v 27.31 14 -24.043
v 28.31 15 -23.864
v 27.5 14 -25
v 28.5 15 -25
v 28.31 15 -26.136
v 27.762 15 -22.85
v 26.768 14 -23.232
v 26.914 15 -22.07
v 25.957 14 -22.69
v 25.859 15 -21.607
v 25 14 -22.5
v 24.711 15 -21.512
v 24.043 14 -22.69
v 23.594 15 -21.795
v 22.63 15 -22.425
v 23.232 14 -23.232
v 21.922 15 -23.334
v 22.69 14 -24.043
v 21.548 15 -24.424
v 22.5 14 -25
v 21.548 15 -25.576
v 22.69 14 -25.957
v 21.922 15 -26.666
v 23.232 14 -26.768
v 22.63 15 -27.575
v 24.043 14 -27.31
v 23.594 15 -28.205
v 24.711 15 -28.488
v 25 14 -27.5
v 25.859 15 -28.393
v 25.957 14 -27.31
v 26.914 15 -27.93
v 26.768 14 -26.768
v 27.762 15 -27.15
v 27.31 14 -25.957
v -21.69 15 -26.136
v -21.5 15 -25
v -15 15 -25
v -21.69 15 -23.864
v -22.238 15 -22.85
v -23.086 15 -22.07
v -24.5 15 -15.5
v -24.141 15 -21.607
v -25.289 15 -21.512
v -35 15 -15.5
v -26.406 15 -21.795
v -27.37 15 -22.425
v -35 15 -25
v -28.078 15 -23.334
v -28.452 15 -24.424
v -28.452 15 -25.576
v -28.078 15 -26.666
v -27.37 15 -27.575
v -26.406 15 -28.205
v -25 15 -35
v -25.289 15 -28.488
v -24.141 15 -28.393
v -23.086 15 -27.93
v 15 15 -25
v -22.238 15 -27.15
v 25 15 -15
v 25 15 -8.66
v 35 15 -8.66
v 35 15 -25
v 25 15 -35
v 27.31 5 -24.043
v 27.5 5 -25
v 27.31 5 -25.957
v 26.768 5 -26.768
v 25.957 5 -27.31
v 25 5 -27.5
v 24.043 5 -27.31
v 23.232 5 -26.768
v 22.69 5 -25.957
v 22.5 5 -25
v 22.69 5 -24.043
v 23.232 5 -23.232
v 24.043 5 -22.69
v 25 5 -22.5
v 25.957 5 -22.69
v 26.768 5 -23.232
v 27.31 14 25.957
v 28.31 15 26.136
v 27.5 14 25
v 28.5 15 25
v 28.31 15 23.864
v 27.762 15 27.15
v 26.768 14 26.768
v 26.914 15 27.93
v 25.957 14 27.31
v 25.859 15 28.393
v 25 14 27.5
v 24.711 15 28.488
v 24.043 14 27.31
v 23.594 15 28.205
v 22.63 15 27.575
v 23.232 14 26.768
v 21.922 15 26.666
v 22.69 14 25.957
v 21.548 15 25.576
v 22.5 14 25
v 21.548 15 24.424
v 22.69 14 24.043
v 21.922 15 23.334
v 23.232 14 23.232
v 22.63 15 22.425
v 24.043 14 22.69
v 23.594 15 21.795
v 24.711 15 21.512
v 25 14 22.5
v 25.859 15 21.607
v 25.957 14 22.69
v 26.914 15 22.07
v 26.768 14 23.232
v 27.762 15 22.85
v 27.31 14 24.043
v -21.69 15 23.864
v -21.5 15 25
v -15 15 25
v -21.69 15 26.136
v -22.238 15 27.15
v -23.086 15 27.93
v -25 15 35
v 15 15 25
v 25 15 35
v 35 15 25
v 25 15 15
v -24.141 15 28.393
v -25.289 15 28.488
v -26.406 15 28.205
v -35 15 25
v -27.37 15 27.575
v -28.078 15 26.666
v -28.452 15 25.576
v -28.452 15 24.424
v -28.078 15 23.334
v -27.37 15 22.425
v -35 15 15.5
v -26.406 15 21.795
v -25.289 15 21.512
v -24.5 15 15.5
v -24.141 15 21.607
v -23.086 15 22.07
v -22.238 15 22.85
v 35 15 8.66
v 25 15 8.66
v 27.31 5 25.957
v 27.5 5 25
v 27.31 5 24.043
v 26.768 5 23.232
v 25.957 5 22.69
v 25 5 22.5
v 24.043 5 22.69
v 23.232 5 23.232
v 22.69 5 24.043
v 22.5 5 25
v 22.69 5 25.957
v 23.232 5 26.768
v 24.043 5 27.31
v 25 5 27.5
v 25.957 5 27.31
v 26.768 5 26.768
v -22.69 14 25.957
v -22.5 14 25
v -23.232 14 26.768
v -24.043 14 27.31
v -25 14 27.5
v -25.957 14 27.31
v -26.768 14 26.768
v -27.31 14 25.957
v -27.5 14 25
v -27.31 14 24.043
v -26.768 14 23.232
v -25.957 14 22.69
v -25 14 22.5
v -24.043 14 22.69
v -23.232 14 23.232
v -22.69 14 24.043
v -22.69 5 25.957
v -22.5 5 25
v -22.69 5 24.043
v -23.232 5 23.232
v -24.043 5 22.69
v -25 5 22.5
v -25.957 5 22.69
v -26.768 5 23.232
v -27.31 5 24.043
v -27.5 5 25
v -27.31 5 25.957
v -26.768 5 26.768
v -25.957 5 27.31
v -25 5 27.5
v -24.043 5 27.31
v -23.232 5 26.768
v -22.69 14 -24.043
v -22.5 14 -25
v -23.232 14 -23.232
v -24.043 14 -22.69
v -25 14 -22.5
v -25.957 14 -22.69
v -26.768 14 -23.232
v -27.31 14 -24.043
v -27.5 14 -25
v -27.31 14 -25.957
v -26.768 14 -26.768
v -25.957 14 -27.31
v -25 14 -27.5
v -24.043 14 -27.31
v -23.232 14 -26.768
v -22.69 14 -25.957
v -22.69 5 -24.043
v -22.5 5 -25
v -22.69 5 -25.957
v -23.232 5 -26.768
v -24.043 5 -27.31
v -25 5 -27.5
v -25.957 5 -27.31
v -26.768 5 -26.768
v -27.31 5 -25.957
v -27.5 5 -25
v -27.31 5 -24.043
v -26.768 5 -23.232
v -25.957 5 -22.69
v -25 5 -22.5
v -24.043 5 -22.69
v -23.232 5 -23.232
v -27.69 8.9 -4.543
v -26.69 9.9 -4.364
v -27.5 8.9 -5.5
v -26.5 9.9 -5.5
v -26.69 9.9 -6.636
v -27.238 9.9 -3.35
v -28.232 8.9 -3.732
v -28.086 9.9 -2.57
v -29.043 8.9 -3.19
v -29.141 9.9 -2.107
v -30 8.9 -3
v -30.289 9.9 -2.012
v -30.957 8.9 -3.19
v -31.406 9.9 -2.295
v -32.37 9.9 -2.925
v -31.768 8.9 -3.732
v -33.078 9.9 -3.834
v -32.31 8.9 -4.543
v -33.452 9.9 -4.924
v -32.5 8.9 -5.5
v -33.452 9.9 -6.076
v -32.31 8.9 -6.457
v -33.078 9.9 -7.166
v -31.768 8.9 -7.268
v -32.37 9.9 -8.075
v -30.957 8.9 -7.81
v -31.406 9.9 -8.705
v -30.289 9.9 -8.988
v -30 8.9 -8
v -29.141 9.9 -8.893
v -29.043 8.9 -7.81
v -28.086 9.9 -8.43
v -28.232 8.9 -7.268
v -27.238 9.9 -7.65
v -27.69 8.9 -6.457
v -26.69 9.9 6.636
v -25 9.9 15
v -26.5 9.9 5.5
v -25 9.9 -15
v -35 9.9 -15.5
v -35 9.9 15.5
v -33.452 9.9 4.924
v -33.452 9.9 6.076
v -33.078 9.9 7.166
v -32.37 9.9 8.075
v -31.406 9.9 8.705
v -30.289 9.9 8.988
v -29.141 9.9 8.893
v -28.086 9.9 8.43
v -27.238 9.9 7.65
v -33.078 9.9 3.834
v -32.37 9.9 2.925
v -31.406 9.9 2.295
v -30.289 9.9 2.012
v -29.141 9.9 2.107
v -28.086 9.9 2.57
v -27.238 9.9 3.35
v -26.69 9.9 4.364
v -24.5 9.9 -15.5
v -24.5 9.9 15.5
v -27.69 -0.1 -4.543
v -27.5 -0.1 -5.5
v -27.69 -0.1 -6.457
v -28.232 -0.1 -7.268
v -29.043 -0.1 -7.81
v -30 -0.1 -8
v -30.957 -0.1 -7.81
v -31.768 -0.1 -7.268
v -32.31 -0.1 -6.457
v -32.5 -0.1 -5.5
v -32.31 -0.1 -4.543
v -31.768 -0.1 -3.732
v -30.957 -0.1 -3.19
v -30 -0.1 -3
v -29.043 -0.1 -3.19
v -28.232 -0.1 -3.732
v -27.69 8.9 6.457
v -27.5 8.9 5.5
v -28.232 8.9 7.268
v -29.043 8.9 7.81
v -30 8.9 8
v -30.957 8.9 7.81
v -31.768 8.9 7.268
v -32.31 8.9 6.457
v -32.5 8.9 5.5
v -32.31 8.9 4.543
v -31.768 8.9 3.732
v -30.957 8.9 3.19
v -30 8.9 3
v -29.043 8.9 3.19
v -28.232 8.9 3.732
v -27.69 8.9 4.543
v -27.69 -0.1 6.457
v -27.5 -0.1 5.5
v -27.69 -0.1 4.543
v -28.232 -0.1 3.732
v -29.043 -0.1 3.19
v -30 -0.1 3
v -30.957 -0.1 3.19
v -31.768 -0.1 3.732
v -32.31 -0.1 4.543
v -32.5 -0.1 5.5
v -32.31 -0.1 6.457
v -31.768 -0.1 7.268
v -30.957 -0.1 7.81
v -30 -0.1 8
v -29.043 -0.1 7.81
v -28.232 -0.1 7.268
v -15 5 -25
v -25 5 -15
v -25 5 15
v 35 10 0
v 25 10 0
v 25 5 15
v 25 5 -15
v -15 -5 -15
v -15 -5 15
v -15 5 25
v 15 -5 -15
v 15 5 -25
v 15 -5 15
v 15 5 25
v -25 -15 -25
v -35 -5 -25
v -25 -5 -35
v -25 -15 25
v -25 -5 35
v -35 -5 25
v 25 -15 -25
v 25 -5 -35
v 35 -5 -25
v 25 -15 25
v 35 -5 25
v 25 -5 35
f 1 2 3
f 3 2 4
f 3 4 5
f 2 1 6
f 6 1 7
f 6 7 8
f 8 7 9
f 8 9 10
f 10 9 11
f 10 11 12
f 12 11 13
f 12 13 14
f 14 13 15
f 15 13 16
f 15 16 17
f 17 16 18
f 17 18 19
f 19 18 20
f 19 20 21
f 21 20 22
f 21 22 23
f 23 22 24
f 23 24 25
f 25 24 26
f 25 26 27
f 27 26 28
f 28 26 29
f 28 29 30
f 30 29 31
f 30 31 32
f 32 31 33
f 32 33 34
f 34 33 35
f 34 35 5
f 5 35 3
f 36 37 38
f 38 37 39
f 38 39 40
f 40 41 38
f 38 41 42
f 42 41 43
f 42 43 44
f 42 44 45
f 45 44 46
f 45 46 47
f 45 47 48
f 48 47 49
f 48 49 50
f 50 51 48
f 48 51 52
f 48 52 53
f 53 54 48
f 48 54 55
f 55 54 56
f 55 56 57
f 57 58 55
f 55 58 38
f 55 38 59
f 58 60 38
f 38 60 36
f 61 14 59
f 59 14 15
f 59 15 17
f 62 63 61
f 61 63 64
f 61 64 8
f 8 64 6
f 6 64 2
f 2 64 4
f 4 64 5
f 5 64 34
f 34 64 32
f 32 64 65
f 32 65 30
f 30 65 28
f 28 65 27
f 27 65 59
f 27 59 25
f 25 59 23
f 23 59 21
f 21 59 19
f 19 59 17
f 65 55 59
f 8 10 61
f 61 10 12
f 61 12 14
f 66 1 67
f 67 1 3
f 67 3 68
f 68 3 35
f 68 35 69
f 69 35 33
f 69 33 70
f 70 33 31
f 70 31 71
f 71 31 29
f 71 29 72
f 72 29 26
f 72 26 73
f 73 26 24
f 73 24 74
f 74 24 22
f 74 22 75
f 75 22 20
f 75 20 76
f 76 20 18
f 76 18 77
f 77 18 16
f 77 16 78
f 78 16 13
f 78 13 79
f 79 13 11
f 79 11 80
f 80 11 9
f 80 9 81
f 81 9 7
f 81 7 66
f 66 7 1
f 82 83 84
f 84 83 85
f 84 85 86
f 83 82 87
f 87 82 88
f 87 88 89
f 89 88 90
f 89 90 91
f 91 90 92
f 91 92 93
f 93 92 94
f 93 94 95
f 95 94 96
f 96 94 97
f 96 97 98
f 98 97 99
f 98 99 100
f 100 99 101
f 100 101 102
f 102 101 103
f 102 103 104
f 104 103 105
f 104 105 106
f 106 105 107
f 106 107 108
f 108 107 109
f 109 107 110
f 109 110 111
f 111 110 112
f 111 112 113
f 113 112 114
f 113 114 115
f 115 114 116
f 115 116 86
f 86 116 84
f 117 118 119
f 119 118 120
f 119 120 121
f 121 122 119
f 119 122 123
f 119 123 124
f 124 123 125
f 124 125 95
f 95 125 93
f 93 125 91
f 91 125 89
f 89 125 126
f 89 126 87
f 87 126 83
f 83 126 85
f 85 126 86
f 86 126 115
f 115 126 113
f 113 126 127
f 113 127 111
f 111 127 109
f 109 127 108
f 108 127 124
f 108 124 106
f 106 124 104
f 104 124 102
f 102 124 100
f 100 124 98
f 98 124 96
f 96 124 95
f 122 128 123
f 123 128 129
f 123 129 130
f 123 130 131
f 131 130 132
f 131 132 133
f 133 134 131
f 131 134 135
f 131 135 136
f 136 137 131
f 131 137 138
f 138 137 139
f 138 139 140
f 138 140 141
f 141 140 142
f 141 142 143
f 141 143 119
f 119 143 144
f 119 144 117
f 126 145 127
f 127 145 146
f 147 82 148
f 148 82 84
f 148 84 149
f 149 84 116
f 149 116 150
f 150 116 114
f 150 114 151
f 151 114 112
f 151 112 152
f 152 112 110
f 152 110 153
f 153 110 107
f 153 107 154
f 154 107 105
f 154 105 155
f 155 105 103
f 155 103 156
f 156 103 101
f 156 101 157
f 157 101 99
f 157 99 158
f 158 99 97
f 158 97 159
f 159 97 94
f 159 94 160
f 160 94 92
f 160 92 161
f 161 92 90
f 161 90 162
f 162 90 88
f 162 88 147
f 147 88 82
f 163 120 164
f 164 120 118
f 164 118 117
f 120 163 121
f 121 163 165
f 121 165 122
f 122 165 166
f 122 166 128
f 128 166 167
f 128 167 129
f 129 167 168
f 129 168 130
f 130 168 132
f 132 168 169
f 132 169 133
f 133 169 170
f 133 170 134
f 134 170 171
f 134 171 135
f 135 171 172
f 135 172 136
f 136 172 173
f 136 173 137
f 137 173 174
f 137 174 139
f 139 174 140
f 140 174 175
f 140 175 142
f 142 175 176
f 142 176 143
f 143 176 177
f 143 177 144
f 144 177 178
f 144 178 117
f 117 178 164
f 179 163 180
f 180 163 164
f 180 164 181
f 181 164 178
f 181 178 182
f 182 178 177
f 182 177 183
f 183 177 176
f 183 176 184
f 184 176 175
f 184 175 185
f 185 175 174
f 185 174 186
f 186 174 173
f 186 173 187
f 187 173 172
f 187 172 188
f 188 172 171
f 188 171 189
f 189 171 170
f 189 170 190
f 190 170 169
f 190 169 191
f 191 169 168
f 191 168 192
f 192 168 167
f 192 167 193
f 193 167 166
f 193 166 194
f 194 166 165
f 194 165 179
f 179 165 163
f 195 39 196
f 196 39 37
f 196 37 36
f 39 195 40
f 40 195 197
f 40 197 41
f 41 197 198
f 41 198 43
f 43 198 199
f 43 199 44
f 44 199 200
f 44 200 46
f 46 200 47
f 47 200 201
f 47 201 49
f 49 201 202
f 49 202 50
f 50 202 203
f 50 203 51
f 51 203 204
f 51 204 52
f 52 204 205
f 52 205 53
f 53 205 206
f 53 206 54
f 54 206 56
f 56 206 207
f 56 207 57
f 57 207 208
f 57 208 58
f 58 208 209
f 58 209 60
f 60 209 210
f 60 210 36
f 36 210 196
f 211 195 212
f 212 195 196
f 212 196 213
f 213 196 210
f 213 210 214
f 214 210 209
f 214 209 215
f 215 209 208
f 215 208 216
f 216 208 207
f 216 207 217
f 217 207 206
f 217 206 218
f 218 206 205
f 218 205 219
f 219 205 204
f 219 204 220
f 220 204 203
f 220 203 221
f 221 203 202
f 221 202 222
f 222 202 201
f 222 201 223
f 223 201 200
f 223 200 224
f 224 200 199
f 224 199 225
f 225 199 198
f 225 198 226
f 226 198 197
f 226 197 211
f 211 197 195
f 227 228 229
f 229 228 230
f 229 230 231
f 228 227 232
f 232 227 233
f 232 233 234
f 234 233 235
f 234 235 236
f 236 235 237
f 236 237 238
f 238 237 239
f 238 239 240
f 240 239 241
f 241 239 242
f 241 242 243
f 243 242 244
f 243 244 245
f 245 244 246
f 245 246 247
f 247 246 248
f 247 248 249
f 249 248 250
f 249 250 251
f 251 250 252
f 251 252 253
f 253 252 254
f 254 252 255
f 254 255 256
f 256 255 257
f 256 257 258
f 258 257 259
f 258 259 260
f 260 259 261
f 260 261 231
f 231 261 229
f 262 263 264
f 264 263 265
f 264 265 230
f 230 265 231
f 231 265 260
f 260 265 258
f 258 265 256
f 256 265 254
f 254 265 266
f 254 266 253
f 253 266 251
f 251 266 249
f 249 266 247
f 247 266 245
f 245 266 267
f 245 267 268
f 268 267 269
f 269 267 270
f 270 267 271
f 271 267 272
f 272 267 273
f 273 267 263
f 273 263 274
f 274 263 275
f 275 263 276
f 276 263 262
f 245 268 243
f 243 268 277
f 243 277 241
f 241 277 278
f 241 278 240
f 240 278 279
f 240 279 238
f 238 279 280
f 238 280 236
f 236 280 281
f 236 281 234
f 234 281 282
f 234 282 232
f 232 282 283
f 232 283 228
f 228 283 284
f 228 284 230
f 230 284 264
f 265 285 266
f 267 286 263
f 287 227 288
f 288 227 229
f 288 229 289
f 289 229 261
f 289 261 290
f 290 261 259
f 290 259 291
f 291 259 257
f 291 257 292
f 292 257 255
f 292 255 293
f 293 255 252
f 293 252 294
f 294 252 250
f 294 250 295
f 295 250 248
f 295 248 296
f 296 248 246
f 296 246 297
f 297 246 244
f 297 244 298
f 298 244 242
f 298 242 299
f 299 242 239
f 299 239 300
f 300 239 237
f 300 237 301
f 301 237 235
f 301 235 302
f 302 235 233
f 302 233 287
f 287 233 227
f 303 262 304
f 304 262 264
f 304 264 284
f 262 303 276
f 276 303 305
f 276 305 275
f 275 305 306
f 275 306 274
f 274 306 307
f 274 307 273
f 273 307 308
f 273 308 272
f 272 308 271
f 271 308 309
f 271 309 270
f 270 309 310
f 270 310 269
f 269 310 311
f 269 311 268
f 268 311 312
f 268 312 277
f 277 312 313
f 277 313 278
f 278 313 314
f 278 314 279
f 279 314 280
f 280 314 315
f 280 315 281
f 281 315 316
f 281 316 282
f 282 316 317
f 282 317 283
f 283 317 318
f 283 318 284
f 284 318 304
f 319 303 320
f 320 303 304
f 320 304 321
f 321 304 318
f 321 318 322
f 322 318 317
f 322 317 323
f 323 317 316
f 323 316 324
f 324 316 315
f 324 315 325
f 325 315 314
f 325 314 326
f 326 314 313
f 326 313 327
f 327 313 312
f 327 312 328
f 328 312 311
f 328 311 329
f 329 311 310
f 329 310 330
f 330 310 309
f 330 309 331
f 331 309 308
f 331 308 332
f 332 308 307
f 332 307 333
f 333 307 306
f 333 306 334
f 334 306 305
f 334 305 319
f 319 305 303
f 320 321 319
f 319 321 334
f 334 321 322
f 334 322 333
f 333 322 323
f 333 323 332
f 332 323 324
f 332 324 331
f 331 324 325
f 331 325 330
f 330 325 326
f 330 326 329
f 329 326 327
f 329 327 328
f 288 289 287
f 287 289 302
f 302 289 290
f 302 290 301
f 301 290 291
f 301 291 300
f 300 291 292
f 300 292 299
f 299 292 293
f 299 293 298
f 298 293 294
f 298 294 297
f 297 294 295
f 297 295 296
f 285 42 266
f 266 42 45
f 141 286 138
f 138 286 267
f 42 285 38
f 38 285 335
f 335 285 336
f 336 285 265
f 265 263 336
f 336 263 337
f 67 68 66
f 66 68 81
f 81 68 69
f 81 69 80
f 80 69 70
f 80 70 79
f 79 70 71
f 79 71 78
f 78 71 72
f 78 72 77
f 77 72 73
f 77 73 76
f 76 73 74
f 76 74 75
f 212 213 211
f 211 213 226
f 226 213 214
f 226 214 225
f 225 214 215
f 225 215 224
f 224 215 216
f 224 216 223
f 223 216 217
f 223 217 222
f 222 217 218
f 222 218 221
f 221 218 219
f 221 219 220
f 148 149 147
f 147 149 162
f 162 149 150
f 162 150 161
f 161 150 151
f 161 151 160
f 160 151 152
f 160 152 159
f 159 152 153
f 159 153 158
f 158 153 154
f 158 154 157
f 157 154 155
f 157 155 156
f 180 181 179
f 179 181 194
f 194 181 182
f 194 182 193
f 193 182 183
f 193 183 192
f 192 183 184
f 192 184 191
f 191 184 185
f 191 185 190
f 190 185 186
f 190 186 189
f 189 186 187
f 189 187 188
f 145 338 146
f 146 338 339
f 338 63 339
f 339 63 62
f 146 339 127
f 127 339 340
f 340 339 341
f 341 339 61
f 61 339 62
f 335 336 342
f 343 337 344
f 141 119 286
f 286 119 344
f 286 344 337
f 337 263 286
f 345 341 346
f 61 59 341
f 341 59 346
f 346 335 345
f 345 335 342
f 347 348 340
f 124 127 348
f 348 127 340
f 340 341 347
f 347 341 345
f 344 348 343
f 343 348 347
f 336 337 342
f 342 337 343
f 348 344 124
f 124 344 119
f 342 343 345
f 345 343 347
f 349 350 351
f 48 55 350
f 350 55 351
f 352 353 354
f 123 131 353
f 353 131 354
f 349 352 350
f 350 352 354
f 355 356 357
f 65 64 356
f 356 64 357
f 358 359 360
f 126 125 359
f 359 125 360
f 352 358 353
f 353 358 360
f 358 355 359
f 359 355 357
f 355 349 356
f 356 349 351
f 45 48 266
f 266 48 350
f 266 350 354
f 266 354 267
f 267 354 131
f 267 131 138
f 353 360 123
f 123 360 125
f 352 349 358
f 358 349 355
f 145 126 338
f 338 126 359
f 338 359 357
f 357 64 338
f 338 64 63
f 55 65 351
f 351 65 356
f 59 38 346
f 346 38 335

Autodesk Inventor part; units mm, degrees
ref_plane "YZ Plane" through (0, 0, 0) normal (1, 0, 0) x (0, 1, 0)
ref_plane "XZ Plane" through (0, 0, 0) normal (0, 1, 0) x (-1, 0, 0)
ref_plane "XY Plane" through (0, 0, 0) normal (0, 0, 1) x (1, 0, 0)
sketch "Sketch2" plane through (0, 0, 0) normal (0, 1, 0) x (-1, 0, 0)
  line L0 (25, -25) -> (-25, -25)
  line L1 (-25, -25) -> (-25, 25)
  line L2 (-25, 25) -> (25, 25)
  line L3 (25, 25) -> (25, -25)
  line L4 (25, -25) -> (-25, 25) construction
  line L5 (-25, -25) -> (25, 25) construction
  line L6 (35, 35) -> (-35, 35)
  line L7 (-35, 35) -> (-35, -35)
  line L8 (-35, -35) -> (35, -35)
  line L9 (35, -35) -> (35, 35)
  point P0 (0, 0)
  dimension "d0" = 50
  dimension "d1" = 10
  dimension "d19" = 50
extrude "Extrusion1" add sketch "Sketch2" along normal mid plane 30
sketch "Sketch3" plane through (0, -15, 0) normal (0, -1, 0) x (1, 0, 0)
  line L0 (35, -35) -> (35, 35) projected
  line L1 (35, 35) -> (-35, 35) projected
  line L2 (-35, 35) -> (-35, -35) projected
  line L3 (-35, -35) -> (35, -35) projected
  point P0 (0, 0)
extrude "Extrusion2" add sketch "Sketch3" against normal blind 10
chamfer "Chamfer1" distance 10 angle 45 16 edges at (35, 0, 35) (25, 5, 25) (-25, 5, 25) (-35, 0, 35) (-25, 5, -25) (25, 5, -25) (-35, 0, -35) (35, 0, -35) (0, -5, -25) (25, -5, 0) (0, -5, 25) (-25, -5, 0) (0, -15, -35) (35, -15, 0) (0, -15, 35) (-35, -15, 0)
sketch "Sketch4" plane through (35, -5, -25) normal (1, 0, 0) x (0, 0, -1)
  line L0 (0, 20) -> (0, 0) construction
  line L1 (-50, 20) -> (0, 20) construction
  line L2 (-16.3397, 30) -> (-16.3397, 20)
  line L3 (-16.3397, 20) -> (-25, 15)
  line L4 (-25, 15) -> (-33.6603, 20)
  line L5 (-33.6603, 20) -> (-33.6603, 30)
  line L6 (-33.6603, 30) -> (-25, 35)
  line L7 (-25, 35) -> (-16.3397, 30)
  point P0 (-25, 5)
  point P1 (-25, 25)
  dimension "d9" = 10
  dimension "d10" = 5
  dimension "d20" = 0
extrude "Extrusion3" cut sketch "Sketch4" against normal blind 10
sketch "Sketch5" plane through (0, 15, 0) normal (0, 1, 0) x (1, 0, 0)
  line L0 (-25, 25) -> (-25, 35) construction
  circle A0 centre (-25, 25) radius 2.5
  line L1 (25, 25) -> (35, 25) construction
  circle A1 centre (25, 25) radius 2.5
  line L2 (-25, -25) -> (-35, -25) construction
  circle A2 centre (-25, -25) radius 2.5
  line L3 (-25, -25) -> (25, -25) construction
  circle A3 centre (25, -25) radius 2.5
  point P0 (0, 0)
  dimension "d13" = 5
  dimension "d14" = 5
  dimension "d15" = 5
  dimension "d16" = 5
extrude "Extrusion4" cut sketch "Sketch5" against normal blind 10
sketch "Sketch6" plane through (-35, -5, -25) normal (-1, 0, 0) x (0, 0, 1)
  line L0 (0, 20) -> (50, 20) construction
  line L1 (9.5, 14.9) -> (40.5, 14.9)
  line L2 (40.5, 14.9) -> (40.5, 20)
  line L3 (40.5, 20) -> (9.5, 20)
  line L4 (9.5, 20) -> (9.5, 14.9)
  point P0 (25, 5)
  point P1 (25, 20)
  dimension "d21" = 31
  dimension "d22" = 5.1
extrude "Extrusion5" cut sketch "Sketch6" against normal blind 12
sketch "Sketch7" plane through (-35, 9.9, 15.5) normal (0, 1, 0) x (1, 0, 0)
  line L0 (0, 0) -> (10.5, 0) construction
  line L1 (0, 31) -> (10.5, 31) construction
  circle A0 centre (5, 21) radius 2.5
  circle A1 centre (5, 10) radius 2.5
  point P0 (10, 0)
  point P1 (10, 31)
  point P2 (35, 15.5)
  dimension "d25" = 5
  dimension "d26" = 5
  dimension "d27" = 10
  dimension "d28" = 10
extrude "Extrusion6" cut sketch "Sketch7" against normal blind 10
chamfer "Chamfer2" distance 1 angle 45 6 edges at (-32.5, 9.9, 5.5) (-32.5, 9.9, -5.5) (-27.5, 15, -25) (-27.5, 15, 25) (22.5, 15, 25) (22.5, 15, -25)
properties part number "pokemon_ball_white"
